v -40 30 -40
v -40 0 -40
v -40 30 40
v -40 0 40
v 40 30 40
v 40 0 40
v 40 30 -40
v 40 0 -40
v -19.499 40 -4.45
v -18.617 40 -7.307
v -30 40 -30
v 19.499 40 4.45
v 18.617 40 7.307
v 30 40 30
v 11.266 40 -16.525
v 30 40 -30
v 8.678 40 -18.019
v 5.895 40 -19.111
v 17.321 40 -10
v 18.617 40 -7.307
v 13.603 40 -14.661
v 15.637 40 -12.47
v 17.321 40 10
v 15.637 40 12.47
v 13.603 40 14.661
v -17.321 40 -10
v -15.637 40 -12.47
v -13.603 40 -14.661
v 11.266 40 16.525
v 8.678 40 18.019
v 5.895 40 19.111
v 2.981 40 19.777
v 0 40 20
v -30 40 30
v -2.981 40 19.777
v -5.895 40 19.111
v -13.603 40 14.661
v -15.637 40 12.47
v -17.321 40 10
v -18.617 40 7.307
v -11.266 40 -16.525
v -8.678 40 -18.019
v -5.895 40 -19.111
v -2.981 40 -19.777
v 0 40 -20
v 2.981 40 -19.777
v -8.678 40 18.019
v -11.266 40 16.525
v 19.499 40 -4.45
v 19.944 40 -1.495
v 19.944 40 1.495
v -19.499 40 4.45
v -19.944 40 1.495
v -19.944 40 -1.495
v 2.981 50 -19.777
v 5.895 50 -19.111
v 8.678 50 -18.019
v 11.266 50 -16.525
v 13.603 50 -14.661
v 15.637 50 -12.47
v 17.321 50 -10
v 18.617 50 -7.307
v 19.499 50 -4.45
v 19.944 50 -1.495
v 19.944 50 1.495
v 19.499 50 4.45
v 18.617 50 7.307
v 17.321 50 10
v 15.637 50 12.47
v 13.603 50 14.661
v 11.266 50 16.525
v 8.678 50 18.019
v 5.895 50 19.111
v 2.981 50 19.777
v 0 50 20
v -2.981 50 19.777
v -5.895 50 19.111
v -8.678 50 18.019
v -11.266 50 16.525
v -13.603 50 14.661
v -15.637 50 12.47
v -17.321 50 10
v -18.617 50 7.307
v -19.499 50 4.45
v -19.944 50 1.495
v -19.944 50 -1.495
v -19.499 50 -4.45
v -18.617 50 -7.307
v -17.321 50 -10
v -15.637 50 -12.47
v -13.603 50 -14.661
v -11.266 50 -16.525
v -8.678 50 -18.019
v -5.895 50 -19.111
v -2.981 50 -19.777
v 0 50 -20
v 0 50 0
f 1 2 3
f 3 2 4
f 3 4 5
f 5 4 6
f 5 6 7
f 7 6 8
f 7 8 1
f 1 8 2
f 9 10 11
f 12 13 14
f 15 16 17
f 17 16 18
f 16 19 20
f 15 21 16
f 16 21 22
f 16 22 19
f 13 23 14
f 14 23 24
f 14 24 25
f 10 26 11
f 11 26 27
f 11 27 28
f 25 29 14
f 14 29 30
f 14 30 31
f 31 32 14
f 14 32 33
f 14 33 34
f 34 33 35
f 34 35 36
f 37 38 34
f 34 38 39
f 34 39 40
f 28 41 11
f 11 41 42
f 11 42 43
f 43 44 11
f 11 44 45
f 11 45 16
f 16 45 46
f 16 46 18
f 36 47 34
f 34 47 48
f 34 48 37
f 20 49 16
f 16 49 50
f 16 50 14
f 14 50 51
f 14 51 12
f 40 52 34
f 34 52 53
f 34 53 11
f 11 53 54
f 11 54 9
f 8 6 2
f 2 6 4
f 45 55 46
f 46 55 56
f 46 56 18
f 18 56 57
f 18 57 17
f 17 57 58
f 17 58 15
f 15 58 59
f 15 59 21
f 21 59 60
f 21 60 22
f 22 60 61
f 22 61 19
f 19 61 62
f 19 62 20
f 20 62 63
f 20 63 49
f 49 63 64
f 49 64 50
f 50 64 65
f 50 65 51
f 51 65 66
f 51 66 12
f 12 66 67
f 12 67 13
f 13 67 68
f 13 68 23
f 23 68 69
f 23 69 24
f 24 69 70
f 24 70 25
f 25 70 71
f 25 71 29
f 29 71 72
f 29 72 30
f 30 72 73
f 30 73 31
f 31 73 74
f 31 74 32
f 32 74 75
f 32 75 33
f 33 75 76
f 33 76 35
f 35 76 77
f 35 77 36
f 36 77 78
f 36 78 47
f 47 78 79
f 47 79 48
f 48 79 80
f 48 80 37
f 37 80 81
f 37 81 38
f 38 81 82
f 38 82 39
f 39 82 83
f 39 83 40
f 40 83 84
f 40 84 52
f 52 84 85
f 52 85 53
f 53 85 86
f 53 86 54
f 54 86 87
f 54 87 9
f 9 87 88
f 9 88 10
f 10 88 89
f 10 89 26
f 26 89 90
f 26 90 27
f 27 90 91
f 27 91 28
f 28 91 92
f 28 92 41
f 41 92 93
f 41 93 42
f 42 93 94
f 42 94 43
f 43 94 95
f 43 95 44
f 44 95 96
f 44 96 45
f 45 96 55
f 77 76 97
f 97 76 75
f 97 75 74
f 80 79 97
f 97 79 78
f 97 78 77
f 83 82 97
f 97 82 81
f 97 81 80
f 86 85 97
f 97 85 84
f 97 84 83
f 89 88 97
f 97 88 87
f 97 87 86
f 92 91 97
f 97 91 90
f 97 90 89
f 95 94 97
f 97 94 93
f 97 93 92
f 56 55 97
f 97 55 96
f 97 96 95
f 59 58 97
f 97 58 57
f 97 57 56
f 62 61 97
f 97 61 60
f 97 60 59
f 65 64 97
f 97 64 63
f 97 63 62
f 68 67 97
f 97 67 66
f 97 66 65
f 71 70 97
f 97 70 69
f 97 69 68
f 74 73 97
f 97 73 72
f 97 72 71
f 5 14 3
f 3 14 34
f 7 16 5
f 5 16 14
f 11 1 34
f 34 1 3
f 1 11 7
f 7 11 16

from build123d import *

# Parameters (mm, degrees)
SKETCH4_W           = 80
SKETCH4_H           = 80
BOSS_EXTRUDE1_DEPTH = 40
SKETCH5_R           = 20
BOSS_EXTRUDE2_DEPTH = 10
CHAMFER1_SIZE       = 10


with BuildPart() as part:
    # Sketch4 → Boss-Extrude1 (new body)
    with BuildSketch(Plane(origin=(0, 0, 0), x_dir=(1, 0, 0), z_dir=(0, 1, 0))):
        Rectangle(SKETCH4_W, SKETCH4_H)
    extrude(amount=BOSS_EXTRUDE1_DEPTH)

    # Sketch5 → Boss-Extrude2 (add)
    with BuildSketch(Plane(origin=(0, 40, 0), x_dir=(1, 0, 0), z_dir=(0, 1, 0))):
        with Locations(Location((0, 0, 0), (0, 0, 270))):
            Circle(SKETCH5_R)
    extrude(amount=BOSS_EXTRUDE2_DEPTH)

    # Chamfer1
    chamfer1_edges = [part.edges().sort_by_distance(p)[0] for p in [
        (40, 40, 0),
        (0, 40, -40),
        (-40, 40, 0),
        (0, 40, 40),
    ]]
    chamfer(chamfer1_edges, length=CHAMFER1_SIZE)


solid = part.part
